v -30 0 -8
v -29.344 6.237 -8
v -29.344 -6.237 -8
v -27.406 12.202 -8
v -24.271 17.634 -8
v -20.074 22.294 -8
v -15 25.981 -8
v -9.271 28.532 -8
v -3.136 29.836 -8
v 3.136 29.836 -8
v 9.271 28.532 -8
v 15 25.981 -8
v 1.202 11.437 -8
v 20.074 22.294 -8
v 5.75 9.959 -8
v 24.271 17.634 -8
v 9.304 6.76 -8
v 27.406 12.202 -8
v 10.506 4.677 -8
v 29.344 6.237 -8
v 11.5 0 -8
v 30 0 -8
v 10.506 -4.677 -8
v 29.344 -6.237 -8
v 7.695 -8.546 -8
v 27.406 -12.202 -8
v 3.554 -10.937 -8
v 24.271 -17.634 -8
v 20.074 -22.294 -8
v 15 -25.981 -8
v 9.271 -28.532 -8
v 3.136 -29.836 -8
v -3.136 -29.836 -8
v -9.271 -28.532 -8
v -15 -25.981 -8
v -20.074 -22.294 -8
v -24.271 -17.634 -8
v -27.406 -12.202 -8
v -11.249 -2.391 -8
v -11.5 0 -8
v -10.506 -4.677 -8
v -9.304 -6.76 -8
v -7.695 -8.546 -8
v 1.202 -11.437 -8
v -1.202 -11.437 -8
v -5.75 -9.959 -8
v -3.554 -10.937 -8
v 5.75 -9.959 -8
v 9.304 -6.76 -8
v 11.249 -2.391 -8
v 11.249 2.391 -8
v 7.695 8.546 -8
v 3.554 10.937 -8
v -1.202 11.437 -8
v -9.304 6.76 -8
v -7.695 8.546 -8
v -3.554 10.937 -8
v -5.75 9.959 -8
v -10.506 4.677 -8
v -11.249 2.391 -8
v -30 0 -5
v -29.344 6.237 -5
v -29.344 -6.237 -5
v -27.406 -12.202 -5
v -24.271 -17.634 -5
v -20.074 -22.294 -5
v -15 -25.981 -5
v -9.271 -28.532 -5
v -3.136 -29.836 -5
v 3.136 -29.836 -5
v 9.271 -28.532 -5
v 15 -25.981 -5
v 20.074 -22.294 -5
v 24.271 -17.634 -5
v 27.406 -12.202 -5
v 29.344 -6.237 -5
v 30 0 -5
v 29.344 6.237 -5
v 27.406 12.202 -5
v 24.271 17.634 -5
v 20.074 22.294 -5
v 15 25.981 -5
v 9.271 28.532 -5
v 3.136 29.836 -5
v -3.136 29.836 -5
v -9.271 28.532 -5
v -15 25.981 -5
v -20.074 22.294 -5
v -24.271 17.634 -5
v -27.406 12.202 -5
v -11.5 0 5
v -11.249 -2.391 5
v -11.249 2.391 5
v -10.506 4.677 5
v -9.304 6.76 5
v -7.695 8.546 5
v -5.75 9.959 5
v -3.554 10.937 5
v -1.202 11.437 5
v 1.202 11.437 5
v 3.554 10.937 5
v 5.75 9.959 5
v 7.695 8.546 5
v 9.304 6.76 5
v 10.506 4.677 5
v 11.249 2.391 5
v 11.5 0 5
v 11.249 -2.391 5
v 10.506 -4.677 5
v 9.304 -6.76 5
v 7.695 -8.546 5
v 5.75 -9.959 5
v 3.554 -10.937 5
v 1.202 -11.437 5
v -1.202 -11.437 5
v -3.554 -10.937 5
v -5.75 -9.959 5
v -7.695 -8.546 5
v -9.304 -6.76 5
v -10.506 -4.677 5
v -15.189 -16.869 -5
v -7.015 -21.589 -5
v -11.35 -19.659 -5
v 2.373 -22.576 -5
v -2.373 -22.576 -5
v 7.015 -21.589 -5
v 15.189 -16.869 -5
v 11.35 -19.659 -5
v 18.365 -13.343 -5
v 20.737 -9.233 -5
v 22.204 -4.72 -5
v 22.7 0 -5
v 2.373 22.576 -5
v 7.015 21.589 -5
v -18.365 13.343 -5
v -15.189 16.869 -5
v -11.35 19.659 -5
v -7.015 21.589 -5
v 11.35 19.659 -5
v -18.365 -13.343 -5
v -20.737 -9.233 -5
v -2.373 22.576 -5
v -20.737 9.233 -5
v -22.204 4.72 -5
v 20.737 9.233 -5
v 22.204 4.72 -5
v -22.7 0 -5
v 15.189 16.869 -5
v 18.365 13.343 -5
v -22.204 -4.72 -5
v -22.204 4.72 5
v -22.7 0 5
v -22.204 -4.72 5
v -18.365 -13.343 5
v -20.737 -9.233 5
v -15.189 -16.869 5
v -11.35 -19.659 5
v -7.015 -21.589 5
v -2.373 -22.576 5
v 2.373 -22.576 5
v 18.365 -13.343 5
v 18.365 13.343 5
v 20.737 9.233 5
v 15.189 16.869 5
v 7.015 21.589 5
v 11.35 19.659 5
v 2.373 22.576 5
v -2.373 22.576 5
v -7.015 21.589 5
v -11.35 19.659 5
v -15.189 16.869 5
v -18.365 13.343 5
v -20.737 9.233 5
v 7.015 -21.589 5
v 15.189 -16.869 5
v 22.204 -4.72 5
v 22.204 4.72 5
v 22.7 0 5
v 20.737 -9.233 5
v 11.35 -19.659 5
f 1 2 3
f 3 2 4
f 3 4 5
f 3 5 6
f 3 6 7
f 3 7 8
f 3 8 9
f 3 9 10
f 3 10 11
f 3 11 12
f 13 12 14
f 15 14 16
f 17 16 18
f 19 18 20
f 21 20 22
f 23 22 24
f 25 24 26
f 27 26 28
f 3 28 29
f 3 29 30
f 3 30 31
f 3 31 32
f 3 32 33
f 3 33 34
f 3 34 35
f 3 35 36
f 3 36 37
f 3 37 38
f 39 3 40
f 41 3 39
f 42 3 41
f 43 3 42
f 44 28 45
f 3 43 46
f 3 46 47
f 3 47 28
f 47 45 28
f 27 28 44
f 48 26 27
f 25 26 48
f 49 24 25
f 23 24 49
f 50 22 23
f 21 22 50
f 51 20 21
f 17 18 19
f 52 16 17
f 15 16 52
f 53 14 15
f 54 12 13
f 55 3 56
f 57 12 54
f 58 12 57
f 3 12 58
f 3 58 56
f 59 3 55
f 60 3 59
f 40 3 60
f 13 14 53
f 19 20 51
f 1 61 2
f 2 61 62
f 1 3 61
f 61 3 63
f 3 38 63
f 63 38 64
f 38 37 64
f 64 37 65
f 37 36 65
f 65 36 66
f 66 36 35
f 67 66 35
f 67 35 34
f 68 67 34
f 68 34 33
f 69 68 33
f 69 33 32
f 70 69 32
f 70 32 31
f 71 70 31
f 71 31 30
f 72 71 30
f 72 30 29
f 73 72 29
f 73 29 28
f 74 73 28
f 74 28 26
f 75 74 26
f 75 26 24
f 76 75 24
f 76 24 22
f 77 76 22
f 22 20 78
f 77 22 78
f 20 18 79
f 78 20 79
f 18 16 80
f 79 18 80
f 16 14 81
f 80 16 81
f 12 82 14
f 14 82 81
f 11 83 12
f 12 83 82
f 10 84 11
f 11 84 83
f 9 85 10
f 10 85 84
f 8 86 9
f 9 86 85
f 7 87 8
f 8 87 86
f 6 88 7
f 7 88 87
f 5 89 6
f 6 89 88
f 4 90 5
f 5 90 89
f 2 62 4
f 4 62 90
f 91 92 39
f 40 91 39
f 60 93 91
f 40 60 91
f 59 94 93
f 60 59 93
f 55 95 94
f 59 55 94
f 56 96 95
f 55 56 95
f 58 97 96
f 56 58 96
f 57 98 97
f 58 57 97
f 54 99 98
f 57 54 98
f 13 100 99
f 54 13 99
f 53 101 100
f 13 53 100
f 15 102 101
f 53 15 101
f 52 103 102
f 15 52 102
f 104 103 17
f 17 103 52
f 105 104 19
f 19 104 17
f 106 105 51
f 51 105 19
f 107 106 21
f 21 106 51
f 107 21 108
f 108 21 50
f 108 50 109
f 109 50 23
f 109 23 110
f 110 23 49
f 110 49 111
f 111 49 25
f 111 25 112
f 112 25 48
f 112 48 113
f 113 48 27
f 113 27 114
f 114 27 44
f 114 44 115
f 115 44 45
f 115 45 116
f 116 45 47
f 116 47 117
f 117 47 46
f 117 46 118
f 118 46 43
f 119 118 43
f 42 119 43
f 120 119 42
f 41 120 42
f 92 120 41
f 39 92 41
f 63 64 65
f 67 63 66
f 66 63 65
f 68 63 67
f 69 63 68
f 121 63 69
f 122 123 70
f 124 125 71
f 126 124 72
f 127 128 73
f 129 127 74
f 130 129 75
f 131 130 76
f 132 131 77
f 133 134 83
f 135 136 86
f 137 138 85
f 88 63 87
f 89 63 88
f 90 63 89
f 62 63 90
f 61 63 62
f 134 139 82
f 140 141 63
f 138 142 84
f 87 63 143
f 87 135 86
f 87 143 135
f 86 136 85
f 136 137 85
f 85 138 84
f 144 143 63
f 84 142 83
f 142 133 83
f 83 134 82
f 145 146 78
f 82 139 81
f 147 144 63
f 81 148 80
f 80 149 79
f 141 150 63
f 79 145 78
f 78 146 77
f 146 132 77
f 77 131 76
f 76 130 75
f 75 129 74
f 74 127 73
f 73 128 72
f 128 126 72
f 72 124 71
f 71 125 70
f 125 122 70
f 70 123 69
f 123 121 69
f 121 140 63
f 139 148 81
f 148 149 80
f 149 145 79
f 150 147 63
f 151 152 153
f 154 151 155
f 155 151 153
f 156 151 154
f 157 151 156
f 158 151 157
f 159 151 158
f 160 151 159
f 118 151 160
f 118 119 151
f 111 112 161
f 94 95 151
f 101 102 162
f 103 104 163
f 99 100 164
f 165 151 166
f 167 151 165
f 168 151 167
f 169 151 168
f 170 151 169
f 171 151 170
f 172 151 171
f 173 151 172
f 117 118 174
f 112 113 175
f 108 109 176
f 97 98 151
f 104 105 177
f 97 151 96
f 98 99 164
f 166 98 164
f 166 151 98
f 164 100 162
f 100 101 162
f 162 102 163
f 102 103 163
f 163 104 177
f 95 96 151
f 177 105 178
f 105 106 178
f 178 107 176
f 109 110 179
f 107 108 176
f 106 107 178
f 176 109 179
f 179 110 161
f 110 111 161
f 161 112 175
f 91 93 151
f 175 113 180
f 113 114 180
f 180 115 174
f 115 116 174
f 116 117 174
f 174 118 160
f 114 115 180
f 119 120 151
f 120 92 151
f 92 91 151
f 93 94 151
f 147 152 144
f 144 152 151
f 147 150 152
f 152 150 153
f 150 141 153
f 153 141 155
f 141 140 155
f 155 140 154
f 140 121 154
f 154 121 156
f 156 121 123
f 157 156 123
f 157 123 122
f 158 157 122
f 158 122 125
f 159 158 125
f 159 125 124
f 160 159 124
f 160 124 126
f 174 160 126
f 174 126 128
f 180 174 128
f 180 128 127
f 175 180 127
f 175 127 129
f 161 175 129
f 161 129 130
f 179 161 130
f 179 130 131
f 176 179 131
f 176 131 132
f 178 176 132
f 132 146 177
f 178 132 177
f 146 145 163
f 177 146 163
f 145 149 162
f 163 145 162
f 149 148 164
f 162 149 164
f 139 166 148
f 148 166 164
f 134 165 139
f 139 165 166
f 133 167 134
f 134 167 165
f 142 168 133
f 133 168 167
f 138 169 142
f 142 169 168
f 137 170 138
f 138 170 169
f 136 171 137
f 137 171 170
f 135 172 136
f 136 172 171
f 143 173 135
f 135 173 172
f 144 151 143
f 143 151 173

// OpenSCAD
difference()
{
	union ()
	{
		cylinder(10, 22.7, 22.7, center=true);
		translate ([0,0,-8])cylinder(3, 30, 30);
	}
	translate ([0,0,-8]) cylinder (13,11.5,11.5);
}
